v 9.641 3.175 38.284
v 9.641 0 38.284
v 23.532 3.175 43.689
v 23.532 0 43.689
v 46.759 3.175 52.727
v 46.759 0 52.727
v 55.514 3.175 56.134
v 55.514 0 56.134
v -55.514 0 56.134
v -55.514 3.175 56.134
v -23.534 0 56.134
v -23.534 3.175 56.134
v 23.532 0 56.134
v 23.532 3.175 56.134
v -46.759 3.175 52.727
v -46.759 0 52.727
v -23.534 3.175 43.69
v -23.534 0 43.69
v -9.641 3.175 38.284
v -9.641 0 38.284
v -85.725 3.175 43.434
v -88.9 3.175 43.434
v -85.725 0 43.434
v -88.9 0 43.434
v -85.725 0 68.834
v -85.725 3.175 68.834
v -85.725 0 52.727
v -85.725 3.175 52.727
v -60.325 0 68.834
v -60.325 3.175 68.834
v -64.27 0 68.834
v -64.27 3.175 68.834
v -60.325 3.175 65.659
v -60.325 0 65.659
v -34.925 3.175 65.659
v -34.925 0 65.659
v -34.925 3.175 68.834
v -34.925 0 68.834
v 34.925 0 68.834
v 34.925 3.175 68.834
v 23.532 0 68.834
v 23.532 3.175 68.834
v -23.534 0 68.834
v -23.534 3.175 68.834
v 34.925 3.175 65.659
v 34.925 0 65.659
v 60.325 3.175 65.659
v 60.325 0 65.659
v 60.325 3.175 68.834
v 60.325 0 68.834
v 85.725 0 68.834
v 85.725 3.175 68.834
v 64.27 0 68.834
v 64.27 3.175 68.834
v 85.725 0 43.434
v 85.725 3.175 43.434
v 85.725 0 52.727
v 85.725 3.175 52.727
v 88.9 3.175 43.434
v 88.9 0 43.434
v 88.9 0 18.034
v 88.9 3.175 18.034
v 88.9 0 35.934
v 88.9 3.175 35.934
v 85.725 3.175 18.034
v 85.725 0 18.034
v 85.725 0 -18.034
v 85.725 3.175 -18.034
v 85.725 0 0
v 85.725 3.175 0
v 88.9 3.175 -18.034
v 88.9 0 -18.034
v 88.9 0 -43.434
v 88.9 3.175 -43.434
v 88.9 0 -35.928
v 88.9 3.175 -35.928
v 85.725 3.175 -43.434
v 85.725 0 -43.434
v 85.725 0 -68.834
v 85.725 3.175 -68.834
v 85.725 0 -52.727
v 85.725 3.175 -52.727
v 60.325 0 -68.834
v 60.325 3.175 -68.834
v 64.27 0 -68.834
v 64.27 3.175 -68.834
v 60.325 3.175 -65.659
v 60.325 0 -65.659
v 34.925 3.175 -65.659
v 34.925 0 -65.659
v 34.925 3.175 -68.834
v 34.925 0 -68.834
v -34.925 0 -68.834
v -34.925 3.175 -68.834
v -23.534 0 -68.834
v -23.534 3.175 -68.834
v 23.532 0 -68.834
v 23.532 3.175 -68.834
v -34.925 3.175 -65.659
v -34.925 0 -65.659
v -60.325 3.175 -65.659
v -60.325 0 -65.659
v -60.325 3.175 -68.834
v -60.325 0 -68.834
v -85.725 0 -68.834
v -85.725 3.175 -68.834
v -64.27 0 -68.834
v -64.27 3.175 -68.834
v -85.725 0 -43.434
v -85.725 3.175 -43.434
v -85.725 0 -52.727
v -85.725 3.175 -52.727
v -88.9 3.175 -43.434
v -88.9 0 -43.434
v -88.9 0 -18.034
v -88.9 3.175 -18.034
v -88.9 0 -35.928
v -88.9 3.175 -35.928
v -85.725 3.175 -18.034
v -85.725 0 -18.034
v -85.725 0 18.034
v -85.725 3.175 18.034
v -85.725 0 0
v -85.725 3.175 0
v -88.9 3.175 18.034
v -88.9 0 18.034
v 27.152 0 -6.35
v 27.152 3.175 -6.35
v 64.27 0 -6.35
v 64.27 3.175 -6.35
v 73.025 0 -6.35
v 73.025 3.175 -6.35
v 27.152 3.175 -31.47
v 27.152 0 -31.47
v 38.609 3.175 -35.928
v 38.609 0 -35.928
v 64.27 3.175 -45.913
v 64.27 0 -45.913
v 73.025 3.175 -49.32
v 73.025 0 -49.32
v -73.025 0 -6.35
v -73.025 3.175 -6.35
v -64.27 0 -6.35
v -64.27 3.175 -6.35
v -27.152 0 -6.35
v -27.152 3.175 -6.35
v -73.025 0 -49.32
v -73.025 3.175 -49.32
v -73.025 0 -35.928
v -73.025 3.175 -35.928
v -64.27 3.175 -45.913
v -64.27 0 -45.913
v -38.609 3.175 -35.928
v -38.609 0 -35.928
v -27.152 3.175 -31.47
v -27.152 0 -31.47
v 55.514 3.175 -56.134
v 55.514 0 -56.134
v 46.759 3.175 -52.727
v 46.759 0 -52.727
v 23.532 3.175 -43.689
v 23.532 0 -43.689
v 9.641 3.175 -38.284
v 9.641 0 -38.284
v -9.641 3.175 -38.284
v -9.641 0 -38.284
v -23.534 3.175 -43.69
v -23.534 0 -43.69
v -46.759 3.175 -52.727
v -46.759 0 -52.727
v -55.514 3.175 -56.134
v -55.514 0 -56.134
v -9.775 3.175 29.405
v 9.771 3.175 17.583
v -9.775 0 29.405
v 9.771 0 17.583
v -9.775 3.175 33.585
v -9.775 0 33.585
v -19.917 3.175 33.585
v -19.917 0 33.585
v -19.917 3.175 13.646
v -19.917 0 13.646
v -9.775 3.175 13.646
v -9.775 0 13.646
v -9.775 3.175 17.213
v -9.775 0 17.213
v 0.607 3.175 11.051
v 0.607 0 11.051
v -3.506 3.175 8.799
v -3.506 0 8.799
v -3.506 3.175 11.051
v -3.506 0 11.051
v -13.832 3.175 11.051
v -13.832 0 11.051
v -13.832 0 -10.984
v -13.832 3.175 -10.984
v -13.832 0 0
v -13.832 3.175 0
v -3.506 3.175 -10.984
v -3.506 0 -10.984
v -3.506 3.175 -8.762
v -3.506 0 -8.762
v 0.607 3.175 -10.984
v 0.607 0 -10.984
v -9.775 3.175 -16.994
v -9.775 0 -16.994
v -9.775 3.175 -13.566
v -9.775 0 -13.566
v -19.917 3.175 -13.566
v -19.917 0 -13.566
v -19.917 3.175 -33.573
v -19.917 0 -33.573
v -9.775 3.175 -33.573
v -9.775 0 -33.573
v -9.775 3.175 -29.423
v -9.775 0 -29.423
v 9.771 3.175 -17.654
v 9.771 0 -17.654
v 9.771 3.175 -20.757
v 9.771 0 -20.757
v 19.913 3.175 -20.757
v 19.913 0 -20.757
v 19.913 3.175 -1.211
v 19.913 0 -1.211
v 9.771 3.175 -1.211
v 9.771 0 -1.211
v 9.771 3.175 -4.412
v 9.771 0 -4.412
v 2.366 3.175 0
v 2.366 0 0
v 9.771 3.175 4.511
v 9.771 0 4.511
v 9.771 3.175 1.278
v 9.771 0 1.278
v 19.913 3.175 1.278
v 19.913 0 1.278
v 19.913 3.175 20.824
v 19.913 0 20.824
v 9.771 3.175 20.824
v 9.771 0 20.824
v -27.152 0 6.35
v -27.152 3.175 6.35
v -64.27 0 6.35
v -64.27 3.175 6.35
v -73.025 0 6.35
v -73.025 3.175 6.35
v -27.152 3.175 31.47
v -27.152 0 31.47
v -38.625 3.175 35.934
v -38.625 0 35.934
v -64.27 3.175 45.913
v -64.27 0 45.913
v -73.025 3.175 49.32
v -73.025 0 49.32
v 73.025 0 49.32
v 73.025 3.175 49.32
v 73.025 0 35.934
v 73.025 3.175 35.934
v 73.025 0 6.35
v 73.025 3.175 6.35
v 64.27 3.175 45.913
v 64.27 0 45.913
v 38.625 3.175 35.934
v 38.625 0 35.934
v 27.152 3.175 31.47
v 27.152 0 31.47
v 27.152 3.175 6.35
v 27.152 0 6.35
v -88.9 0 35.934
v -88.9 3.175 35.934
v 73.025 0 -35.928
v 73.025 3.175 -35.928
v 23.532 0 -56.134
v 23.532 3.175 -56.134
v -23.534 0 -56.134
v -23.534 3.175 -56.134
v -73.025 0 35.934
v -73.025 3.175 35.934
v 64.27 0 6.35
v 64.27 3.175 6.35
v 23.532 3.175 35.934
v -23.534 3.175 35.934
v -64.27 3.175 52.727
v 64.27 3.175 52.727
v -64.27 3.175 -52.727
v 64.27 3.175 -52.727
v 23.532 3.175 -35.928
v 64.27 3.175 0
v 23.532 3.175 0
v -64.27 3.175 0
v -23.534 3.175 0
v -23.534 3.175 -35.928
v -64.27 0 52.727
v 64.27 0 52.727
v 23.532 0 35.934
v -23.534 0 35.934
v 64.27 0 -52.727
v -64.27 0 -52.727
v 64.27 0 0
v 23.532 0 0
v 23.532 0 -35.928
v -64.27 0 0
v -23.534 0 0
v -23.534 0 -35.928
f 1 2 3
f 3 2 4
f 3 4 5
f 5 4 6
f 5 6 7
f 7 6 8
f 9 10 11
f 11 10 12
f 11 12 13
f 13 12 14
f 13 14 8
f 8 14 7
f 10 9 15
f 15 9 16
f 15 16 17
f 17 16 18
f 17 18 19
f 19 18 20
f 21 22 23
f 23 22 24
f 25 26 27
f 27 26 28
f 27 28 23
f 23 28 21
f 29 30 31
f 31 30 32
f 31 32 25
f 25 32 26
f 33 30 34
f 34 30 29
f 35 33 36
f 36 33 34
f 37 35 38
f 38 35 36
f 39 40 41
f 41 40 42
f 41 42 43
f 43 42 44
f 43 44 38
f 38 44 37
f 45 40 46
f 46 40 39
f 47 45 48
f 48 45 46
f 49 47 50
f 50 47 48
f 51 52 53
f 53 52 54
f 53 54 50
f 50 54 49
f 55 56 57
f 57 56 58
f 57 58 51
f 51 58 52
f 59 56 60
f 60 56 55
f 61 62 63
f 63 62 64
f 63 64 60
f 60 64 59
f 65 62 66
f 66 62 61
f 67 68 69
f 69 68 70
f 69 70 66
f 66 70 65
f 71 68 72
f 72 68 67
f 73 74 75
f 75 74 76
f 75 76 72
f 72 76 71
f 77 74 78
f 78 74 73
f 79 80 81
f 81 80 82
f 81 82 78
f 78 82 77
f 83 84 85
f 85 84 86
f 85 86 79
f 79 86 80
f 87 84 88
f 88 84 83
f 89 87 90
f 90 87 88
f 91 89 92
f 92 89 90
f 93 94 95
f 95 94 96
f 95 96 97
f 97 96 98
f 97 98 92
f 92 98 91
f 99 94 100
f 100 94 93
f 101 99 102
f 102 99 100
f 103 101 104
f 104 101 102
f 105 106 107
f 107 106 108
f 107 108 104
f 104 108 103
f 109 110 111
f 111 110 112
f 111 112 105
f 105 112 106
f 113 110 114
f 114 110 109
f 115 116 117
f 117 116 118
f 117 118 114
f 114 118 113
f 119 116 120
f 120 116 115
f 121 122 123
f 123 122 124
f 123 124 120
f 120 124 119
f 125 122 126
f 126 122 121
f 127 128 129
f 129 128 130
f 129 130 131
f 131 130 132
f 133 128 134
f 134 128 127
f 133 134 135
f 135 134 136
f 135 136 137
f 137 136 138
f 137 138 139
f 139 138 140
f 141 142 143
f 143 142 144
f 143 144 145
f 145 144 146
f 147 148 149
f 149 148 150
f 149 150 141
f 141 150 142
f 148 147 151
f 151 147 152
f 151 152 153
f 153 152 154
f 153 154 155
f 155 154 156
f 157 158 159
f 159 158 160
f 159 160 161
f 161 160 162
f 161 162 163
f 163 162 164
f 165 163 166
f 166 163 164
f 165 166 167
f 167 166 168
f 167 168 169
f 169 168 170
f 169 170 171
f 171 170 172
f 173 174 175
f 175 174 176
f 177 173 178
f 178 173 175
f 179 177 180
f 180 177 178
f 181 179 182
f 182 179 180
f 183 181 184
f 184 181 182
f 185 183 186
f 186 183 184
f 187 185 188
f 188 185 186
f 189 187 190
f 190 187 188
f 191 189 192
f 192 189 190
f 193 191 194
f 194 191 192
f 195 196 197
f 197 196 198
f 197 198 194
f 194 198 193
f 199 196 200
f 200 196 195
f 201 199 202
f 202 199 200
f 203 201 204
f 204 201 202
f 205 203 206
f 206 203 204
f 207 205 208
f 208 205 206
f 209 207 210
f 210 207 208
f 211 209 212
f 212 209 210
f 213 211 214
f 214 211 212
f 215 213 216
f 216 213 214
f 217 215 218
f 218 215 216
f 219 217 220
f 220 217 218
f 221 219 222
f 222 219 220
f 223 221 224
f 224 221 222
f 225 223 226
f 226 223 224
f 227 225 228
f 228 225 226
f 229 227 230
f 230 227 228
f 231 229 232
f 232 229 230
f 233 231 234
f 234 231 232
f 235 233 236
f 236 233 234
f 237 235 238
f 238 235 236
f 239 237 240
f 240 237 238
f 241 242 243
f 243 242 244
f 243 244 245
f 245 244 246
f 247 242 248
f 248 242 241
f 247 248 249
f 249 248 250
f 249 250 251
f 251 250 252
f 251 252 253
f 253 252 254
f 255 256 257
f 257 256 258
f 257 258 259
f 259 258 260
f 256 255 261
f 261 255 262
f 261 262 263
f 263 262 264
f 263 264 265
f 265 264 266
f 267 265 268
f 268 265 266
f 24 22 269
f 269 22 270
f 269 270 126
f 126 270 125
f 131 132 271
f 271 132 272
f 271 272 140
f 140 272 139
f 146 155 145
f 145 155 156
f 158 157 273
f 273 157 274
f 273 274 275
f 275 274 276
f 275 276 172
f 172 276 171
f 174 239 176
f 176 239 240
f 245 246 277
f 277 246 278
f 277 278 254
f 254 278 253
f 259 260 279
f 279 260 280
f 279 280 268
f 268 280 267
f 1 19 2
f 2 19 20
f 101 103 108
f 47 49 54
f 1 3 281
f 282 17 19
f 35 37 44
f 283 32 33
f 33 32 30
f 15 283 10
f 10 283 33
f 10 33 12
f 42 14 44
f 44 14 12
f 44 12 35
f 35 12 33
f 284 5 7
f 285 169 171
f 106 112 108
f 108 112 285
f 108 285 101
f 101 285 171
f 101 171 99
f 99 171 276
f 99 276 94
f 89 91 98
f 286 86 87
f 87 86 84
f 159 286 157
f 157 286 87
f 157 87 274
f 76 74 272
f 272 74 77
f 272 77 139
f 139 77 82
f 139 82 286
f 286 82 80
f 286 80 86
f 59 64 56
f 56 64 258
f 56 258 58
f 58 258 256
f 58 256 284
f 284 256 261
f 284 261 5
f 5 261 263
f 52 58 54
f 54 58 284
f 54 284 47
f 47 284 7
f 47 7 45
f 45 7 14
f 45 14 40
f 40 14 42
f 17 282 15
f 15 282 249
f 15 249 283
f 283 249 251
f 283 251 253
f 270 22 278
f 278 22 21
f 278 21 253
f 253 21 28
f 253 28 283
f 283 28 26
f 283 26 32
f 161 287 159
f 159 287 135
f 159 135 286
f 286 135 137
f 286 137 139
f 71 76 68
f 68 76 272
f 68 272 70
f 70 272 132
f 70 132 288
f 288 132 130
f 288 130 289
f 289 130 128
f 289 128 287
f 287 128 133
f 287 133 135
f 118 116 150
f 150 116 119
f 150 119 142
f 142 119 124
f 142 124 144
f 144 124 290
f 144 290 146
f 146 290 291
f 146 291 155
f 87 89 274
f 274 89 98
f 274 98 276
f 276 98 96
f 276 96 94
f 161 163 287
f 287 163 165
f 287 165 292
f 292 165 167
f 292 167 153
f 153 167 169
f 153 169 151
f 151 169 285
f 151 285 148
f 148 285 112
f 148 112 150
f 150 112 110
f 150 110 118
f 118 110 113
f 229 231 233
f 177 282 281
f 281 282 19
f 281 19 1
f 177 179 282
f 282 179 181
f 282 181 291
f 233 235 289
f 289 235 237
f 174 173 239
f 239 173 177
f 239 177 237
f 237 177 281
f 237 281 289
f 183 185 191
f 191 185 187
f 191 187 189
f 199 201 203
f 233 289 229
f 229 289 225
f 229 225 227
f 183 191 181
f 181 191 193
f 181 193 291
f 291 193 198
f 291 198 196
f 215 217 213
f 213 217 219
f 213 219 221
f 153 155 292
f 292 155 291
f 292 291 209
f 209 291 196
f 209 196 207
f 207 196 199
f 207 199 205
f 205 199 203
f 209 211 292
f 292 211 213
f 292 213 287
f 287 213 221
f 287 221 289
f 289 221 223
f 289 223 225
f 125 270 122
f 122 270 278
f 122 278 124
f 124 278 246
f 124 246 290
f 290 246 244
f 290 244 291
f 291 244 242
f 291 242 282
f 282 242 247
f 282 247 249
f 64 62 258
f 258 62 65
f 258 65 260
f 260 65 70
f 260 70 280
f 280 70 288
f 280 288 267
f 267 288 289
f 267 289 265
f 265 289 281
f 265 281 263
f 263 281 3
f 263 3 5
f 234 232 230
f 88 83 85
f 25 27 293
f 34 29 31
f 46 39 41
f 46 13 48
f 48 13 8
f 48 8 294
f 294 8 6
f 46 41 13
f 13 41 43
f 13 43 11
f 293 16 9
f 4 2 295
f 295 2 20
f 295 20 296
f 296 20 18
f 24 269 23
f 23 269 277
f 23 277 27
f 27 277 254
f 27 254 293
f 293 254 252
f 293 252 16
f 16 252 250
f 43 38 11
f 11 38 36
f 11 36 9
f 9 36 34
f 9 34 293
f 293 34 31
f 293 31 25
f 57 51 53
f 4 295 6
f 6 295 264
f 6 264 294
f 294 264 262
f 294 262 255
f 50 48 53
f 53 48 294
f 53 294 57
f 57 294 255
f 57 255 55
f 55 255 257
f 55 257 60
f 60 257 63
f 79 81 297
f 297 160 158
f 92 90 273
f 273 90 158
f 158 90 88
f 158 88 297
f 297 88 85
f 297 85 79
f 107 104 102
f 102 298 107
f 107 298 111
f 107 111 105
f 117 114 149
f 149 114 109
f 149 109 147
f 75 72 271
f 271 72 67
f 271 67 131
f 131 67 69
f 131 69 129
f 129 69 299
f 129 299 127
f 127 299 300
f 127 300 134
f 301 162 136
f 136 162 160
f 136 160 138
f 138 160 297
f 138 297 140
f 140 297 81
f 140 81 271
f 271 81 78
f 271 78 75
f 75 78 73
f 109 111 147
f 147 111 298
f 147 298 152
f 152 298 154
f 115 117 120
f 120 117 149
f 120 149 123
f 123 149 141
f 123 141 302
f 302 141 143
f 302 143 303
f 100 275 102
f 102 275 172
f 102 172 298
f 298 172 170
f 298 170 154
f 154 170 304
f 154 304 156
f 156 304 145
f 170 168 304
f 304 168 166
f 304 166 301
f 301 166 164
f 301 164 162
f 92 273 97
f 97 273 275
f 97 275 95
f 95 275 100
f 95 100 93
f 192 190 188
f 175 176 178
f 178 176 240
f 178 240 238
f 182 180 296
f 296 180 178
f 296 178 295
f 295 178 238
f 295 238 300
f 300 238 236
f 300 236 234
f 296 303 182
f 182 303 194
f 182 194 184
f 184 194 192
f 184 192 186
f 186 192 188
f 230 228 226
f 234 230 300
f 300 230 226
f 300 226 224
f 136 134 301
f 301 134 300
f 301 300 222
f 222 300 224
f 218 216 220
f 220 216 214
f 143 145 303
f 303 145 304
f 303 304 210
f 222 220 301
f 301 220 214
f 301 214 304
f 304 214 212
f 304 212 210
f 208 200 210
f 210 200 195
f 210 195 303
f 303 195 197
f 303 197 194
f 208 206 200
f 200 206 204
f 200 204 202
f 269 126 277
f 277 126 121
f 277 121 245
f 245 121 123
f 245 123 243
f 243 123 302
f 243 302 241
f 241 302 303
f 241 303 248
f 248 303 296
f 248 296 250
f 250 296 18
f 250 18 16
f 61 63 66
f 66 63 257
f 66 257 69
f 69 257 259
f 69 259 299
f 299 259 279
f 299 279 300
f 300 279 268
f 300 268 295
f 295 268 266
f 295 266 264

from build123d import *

# Parameters (mm, degrees)
BOSS_EXTRUDE1_DEPTH = 3.175


with BuildPart() as part:
    # Sketch1 → Boss-Extrude1 (new body)
    with BuildSketch(Plane(origin=(0, 0, 0), x_dir=(1, 0, 0), z_dir=(0, 1, 0))):
        Polygon((-60.325, 68.834), (-85.725, 68.834), (-85.725, 43.434), (-88.9, 43.434), (-88.9, 18.034), (-85.725, 18.034), (-85.725, -18.034), (-88.9, -18.034), (-88.9, -43.434), (-85.725, -43.434), (-85.725, -68.834), (-60.325, -68.834), (-60.325, -65.659), (-34.925, -65.659), (-34.925, -68.834), (34.925, -68.834), (34.925, -65.659), (60.325, -65.659), (60.325, -68.834), (85.725, -68.834), (85.725, -43.434), (88.9, -43.434), (88.9, -18.034), (85.725, -18.034), (85.725, 18.034), (88.9, 18.034), (88.9, 43.434), (85.725, 43.434), (85.725, 68.834), (60.325, 68.834), (60.325, 65.659), (34.925, 65.659), (34.925, 68.834), (-34.925, 68.834), (-34.925, 65.659), (-60.325, 65.659), align=None)
        Polygon((-55.514400942, -56.134), (-9.641329679, -38.283634289), (9.641329679, -38.283634289), (55.514400942, -56.134), align=None, mode=Mode.SUBTRACT)
        Polygon((-27.151928737, -31.469819814), (-73.025, -49.320185525), (-73.025, -6.35), (-27.151928737, -6.35), align=None, mode=Mode.SUBTRACT)
        Polygon((0.606600295, 10.984138701), (-9.775001271, 16.993576732), (-9.775001271, 13.565679079), (-19.916767041, 13.565679079), (-19.916767041, 33.572617007), (-9.775001271, 33.572617007), (-9.775001271, 29.423230301), (9.770947304, 17.65448668), (9.770947304, 20.757112988), (19.912713073, 20.757112988), (19.912713073, 1.211164414), (9.770947304, 1.211164414), (9.770947304, 4.412046261), (2.366430033, 0), (9.770947304, -4.510587766), (9.770947304, -1.278178094), (19.912713073, -1.278178094), (19.912713073, -20.824126668), (9.770947304, -20.824126668), (9.770947304, -17.582605044), (-9.775001271, -29.404975555), (-9.775001271, -33.584778117), (-19.916767041, -33.584778117), (-19.916767041, -13.646113818), (-9.775001271, -13.646113818), (-9.775001271, -17.213122569), (0.606600295, -11.051152381), (-3.505546068, -8.798640388), (-3.505546068, -11.051152381), (-13.831707579, -11.051152381), (-13.831707579, 10.984138701), (-3.505546068, 10.984138701), (-3.505546068, 8.762018077), align=None, mode=Mode.SUBTRACT)
        Polygon((73.025, -6.35), (73.025, -49.320185525), (27.151928737, -31.469819814), (27.151928737, -6.35), align=None, mode=Mode.SUBTRACT)
        Polygon((-73.025, 49.320185525), (-27.151928737, 31.469819814), (-27.151928737, 6.35), (-73.025, 6.35), align=None, mode=Mode.SUBTRACT)
        Polygon((27.151928737, 6.35), (27.151928737, 31.469819814), (73.025, 49.320185525), (73.025, 6.35), align=None, mode=Mode.SUBTRACT)
        Polygon((9.641329679, 38.283634289), (-9.641329679, 38.283634289), (-55.514400942, 56.134), (55.514400942, 56.134), align=None, mode=Mode.SUBTRACT)
    extrude(amount=BOSS_EXTRUDE1_DEPTH)


solid = part.part
